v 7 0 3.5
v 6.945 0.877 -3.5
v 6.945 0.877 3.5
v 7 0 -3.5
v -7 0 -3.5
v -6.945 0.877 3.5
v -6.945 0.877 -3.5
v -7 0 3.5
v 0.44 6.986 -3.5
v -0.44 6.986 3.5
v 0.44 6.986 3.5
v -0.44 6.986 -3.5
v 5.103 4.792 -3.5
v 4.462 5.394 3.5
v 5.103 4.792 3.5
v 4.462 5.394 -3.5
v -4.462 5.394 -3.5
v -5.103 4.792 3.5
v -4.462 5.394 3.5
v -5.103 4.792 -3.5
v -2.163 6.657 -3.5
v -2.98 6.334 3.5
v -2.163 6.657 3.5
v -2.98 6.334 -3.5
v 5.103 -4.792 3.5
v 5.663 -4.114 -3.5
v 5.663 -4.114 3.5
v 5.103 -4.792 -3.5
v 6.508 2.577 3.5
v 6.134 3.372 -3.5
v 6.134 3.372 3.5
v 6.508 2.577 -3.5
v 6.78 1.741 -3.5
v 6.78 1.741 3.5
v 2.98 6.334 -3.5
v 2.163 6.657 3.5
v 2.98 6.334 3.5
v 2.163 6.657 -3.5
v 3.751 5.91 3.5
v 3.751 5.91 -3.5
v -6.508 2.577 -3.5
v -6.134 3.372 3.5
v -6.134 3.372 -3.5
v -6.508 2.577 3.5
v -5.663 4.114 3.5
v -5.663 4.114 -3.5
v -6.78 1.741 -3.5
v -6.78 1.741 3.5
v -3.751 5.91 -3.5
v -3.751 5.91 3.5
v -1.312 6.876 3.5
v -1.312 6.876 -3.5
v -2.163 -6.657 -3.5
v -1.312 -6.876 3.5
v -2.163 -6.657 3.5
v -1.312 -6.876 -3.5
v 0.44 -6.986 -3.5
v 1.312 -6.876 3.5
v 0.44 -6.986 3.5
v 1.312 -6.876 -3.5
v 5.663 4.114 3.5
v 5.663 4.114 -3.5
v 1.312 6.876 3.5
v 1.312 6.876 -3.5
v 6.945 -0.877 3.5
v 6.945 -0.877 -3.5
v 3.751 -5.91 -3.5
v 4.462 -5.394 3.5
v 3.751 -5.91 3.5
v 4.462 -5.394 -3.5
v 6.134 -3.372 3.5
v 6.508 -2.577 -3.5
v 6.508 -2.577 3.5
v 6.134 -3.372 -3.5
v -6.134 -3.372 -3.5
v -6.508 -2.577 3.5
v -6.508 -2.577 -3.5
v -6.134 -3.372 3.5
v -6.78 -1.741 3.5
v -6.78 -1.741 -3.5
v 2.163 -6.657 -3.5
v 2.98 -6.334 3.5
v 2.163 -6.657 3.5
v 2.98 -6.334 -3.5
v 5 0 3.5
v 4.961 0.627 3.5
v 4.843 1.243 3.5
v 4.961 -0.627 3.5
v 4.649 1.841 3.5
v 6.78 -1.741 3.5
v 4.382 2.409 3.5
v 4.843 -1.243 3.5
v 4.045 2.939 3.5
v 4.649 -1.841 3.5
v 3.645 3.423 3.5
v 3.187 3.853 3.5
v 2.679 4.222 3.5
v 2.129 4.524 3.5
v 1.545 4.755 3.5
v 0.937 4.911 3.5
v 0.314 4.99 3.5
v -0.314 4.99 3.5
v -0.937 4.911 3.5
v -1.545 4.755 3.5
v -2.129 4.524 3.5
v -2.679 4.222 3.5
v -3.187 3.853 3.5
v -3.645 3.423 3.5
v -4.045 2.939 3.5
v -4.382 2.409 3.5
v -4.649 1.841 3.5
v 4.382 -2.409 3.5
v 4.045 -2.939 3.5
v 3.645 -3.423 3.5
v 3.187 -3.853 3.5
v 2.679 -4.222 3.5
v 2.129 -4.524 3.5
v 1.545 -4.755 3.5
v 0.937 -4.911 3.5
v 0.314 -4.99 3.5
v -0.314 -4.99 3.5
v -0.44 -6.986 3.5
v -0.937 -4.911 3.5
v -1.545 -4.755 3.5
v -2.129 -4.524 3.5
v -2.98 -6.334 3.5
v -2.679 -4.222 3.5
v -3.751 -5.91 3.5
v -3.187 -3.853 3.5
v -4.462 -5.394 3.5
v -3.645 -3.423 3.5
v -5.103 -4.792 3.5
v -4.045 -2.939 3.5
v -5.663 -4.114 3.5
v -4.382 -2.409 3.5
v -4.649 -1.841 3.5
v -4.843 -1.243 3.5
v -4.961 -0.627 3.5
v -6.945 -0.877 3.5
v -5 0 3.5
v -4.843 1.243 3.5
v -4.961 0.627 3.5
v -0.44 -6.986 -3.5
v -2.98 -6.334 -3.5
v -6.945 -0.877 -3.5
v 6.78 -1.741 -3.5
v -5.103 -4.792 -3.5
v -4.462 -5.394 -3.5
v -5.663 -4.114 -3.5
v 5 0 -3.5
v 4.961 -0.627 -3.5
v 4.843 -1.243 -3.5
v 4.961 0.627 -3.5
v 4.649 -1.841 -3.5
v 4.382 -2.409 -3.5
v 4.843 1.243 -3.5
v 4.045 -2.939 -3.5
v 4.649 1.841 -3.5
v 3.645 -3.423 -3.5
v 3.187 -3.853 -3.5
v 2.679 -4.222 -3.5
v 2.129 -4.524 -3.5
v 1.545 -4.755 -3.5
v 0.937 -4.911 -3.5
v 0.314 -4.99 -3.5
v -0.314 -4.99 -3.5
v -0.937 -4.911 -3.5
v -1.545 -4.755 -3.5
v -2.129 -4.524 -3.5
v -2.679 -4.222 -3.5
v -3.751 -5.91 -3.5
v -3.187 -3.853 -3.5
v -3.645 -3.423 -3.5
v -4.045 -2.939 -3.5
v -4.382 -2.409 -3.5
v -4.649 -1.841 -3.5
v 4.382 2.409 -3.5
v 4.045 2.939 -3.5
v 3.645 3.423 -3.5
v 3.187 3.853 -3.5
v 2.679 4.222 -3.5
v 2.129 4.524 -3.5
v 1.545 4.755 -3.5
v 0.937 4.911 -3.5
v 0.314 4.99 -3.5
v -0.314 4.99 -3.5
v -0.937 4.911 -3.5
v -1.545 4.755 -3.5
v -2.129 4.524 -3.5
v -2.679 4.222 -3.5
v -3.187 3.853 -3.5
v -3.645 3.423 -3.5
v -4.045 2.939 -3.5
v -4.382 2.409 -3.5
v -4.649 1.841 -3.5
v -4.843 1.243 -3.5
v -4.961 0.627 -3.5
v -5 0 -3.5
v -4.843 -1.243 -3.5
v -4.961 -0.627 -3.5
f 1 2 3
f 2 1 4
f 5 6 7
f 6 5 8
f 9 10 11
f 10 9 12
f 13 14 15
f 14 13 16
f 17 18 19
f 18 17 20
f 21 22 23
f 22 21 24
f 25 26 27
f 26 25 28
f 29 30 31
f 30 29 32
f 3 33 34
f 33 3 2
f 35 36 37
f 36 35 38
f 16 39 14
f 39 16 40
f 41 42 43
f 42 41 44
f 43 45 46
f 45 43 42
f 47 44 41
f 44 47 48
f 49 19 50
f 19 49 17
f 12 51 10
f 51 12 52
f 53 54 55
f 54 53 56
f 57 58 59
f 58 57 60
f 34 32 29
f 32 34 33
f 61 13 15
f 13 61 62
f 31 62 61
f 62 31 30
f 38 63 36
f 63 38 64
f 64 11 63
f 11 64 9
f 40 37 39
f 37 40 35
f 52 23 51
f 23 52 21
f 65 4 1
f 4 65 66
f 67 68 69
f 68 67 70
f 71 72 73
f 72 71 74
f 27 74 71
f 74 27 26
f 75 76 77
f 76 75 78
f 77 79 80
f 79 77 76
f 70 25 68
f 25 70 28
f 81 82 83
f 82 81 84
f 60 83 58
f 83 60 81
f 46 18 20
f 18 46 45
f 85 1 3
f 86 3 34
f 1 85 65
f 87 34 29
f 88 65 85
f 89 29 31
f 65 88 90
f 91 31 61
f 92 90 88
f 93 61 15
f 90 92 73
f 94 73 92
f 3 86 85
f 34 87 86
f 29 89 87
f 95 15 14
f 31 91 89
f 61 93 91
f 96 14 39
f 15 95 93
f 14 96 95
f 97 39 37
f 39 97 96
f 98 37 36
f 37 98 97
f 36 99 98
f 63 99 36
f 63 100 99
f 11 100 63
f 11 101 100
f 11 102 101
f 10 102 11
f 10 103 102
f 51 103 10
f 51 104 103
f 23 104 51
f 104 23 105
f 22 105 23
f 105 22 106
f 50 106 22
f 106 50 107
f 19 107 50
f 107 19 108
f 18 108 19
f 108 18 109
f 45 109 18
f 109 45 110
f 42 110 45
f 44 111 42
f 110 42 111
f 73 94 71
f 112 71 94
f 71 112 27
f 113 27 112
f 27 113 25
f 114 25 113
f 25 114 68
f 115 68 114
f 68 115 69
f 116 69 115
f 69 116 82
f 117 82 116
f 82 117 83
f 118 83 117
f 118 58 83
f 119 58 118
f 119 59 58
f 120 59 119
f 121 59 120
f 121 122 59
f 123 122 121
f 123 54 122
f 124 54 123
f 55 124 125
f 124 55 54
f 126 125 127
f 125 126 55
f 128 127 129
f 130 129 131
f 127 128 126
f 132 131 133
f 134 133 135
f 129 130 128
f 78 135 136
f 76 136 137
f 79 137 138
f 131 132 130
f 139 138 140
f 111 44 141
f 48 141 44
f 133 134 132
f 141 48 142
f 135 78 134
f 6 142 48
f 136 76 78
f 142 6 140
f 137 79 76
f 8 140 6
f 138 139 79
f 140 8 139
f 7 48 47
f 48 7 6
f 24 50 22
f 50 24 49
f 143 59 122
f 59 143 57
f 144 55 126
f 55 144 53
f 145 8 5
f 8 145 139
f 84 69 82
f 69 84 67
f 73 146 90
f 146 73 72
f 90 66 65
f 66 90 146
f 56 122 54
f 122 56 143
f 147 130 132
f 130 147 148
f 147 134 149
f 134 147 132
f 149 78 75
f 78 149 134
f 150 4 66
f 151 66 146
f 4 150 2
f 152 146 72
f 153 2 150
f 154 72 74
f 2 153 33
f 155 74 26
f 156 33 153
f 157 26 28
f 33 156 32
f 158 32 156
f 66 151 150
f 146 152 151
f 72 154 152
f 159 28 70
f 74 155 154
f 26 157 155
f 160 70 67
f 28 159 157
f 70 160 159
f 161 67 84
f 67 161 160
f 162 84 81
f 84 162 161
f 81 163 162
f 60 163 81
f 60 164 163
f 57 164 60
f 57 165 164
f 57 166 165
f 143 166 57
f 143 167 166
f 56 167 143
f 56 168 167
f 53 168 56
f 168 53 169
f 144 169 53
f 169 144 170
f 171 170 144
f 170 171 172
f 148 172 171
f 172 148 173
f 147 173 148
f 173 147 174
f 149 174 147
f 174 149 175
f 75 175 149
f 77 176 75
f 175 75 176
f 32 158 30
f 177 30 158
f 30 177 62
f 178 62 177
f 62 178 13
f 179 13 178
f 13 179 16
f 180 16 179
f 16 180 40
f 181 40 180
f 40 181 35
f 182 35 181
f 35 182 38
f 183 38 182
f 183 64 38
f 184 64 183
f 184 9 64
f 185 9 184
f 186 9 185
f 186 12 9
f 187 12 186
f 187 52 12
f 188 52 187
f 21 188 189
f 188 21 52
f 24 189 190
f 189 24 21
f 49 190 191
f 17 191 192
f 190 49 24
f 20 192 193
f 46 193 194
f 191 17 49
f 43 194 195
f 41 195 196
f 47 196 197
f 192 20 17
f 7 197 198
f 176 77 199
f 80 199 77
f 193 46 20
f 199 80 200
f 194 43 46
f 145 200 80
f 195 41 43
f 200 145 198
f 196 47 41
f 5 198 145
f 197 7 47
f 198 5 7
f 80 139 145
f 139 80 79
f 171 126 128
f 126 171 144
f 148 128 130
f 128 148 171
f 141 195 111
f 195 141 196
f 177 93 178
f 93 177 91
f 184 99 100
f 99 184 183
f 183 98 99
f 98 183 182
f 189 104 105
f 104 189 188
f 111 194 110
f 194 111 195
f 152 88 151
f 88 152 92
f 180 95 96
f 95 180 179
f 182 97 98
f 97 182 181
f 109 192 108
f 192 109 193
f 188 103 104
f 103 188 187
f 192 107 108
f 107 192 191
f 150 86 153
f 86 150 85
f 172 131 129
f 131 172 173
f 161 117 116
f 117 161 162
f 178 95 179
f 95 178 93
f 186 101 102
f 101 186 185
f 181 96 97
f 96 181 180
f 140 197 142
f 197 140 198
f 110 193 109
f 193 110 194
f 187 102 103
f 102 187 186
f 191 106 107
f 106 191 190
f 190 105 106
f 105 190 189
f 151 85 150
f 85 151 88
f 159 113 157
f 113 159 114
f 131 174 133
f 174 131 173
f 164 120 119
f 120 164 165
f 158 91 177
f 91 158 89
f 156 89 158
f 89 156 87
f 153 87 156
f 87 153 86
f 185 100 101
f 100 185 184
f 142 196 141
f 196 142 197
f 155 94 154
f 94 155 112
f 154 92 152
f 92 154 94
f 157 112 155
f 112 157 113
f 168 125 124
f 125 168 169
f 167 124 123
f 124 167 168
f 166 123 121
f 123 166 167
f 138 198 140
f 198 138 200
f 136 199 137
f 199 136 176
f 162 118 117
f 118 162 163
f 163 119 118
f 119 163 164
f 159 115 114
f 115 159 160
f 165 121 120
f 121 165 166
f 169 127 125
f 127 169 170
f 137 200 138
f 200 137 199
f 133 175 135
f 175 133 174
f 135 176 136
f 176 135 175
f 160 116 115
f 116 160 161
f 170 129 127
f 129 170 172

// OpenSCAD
$fn = 50;


difference() {
	union() {
		translate(v = [0, 0, -3.5000000000]) {
			cylinder(h = 7, r = 7.0000000000);
		}
	}
	union() {
		translate(v = [0, 0, -100.0000000000]) {
			cylinder(h = 200, r = 5.0000000000);
		}
	}
}
